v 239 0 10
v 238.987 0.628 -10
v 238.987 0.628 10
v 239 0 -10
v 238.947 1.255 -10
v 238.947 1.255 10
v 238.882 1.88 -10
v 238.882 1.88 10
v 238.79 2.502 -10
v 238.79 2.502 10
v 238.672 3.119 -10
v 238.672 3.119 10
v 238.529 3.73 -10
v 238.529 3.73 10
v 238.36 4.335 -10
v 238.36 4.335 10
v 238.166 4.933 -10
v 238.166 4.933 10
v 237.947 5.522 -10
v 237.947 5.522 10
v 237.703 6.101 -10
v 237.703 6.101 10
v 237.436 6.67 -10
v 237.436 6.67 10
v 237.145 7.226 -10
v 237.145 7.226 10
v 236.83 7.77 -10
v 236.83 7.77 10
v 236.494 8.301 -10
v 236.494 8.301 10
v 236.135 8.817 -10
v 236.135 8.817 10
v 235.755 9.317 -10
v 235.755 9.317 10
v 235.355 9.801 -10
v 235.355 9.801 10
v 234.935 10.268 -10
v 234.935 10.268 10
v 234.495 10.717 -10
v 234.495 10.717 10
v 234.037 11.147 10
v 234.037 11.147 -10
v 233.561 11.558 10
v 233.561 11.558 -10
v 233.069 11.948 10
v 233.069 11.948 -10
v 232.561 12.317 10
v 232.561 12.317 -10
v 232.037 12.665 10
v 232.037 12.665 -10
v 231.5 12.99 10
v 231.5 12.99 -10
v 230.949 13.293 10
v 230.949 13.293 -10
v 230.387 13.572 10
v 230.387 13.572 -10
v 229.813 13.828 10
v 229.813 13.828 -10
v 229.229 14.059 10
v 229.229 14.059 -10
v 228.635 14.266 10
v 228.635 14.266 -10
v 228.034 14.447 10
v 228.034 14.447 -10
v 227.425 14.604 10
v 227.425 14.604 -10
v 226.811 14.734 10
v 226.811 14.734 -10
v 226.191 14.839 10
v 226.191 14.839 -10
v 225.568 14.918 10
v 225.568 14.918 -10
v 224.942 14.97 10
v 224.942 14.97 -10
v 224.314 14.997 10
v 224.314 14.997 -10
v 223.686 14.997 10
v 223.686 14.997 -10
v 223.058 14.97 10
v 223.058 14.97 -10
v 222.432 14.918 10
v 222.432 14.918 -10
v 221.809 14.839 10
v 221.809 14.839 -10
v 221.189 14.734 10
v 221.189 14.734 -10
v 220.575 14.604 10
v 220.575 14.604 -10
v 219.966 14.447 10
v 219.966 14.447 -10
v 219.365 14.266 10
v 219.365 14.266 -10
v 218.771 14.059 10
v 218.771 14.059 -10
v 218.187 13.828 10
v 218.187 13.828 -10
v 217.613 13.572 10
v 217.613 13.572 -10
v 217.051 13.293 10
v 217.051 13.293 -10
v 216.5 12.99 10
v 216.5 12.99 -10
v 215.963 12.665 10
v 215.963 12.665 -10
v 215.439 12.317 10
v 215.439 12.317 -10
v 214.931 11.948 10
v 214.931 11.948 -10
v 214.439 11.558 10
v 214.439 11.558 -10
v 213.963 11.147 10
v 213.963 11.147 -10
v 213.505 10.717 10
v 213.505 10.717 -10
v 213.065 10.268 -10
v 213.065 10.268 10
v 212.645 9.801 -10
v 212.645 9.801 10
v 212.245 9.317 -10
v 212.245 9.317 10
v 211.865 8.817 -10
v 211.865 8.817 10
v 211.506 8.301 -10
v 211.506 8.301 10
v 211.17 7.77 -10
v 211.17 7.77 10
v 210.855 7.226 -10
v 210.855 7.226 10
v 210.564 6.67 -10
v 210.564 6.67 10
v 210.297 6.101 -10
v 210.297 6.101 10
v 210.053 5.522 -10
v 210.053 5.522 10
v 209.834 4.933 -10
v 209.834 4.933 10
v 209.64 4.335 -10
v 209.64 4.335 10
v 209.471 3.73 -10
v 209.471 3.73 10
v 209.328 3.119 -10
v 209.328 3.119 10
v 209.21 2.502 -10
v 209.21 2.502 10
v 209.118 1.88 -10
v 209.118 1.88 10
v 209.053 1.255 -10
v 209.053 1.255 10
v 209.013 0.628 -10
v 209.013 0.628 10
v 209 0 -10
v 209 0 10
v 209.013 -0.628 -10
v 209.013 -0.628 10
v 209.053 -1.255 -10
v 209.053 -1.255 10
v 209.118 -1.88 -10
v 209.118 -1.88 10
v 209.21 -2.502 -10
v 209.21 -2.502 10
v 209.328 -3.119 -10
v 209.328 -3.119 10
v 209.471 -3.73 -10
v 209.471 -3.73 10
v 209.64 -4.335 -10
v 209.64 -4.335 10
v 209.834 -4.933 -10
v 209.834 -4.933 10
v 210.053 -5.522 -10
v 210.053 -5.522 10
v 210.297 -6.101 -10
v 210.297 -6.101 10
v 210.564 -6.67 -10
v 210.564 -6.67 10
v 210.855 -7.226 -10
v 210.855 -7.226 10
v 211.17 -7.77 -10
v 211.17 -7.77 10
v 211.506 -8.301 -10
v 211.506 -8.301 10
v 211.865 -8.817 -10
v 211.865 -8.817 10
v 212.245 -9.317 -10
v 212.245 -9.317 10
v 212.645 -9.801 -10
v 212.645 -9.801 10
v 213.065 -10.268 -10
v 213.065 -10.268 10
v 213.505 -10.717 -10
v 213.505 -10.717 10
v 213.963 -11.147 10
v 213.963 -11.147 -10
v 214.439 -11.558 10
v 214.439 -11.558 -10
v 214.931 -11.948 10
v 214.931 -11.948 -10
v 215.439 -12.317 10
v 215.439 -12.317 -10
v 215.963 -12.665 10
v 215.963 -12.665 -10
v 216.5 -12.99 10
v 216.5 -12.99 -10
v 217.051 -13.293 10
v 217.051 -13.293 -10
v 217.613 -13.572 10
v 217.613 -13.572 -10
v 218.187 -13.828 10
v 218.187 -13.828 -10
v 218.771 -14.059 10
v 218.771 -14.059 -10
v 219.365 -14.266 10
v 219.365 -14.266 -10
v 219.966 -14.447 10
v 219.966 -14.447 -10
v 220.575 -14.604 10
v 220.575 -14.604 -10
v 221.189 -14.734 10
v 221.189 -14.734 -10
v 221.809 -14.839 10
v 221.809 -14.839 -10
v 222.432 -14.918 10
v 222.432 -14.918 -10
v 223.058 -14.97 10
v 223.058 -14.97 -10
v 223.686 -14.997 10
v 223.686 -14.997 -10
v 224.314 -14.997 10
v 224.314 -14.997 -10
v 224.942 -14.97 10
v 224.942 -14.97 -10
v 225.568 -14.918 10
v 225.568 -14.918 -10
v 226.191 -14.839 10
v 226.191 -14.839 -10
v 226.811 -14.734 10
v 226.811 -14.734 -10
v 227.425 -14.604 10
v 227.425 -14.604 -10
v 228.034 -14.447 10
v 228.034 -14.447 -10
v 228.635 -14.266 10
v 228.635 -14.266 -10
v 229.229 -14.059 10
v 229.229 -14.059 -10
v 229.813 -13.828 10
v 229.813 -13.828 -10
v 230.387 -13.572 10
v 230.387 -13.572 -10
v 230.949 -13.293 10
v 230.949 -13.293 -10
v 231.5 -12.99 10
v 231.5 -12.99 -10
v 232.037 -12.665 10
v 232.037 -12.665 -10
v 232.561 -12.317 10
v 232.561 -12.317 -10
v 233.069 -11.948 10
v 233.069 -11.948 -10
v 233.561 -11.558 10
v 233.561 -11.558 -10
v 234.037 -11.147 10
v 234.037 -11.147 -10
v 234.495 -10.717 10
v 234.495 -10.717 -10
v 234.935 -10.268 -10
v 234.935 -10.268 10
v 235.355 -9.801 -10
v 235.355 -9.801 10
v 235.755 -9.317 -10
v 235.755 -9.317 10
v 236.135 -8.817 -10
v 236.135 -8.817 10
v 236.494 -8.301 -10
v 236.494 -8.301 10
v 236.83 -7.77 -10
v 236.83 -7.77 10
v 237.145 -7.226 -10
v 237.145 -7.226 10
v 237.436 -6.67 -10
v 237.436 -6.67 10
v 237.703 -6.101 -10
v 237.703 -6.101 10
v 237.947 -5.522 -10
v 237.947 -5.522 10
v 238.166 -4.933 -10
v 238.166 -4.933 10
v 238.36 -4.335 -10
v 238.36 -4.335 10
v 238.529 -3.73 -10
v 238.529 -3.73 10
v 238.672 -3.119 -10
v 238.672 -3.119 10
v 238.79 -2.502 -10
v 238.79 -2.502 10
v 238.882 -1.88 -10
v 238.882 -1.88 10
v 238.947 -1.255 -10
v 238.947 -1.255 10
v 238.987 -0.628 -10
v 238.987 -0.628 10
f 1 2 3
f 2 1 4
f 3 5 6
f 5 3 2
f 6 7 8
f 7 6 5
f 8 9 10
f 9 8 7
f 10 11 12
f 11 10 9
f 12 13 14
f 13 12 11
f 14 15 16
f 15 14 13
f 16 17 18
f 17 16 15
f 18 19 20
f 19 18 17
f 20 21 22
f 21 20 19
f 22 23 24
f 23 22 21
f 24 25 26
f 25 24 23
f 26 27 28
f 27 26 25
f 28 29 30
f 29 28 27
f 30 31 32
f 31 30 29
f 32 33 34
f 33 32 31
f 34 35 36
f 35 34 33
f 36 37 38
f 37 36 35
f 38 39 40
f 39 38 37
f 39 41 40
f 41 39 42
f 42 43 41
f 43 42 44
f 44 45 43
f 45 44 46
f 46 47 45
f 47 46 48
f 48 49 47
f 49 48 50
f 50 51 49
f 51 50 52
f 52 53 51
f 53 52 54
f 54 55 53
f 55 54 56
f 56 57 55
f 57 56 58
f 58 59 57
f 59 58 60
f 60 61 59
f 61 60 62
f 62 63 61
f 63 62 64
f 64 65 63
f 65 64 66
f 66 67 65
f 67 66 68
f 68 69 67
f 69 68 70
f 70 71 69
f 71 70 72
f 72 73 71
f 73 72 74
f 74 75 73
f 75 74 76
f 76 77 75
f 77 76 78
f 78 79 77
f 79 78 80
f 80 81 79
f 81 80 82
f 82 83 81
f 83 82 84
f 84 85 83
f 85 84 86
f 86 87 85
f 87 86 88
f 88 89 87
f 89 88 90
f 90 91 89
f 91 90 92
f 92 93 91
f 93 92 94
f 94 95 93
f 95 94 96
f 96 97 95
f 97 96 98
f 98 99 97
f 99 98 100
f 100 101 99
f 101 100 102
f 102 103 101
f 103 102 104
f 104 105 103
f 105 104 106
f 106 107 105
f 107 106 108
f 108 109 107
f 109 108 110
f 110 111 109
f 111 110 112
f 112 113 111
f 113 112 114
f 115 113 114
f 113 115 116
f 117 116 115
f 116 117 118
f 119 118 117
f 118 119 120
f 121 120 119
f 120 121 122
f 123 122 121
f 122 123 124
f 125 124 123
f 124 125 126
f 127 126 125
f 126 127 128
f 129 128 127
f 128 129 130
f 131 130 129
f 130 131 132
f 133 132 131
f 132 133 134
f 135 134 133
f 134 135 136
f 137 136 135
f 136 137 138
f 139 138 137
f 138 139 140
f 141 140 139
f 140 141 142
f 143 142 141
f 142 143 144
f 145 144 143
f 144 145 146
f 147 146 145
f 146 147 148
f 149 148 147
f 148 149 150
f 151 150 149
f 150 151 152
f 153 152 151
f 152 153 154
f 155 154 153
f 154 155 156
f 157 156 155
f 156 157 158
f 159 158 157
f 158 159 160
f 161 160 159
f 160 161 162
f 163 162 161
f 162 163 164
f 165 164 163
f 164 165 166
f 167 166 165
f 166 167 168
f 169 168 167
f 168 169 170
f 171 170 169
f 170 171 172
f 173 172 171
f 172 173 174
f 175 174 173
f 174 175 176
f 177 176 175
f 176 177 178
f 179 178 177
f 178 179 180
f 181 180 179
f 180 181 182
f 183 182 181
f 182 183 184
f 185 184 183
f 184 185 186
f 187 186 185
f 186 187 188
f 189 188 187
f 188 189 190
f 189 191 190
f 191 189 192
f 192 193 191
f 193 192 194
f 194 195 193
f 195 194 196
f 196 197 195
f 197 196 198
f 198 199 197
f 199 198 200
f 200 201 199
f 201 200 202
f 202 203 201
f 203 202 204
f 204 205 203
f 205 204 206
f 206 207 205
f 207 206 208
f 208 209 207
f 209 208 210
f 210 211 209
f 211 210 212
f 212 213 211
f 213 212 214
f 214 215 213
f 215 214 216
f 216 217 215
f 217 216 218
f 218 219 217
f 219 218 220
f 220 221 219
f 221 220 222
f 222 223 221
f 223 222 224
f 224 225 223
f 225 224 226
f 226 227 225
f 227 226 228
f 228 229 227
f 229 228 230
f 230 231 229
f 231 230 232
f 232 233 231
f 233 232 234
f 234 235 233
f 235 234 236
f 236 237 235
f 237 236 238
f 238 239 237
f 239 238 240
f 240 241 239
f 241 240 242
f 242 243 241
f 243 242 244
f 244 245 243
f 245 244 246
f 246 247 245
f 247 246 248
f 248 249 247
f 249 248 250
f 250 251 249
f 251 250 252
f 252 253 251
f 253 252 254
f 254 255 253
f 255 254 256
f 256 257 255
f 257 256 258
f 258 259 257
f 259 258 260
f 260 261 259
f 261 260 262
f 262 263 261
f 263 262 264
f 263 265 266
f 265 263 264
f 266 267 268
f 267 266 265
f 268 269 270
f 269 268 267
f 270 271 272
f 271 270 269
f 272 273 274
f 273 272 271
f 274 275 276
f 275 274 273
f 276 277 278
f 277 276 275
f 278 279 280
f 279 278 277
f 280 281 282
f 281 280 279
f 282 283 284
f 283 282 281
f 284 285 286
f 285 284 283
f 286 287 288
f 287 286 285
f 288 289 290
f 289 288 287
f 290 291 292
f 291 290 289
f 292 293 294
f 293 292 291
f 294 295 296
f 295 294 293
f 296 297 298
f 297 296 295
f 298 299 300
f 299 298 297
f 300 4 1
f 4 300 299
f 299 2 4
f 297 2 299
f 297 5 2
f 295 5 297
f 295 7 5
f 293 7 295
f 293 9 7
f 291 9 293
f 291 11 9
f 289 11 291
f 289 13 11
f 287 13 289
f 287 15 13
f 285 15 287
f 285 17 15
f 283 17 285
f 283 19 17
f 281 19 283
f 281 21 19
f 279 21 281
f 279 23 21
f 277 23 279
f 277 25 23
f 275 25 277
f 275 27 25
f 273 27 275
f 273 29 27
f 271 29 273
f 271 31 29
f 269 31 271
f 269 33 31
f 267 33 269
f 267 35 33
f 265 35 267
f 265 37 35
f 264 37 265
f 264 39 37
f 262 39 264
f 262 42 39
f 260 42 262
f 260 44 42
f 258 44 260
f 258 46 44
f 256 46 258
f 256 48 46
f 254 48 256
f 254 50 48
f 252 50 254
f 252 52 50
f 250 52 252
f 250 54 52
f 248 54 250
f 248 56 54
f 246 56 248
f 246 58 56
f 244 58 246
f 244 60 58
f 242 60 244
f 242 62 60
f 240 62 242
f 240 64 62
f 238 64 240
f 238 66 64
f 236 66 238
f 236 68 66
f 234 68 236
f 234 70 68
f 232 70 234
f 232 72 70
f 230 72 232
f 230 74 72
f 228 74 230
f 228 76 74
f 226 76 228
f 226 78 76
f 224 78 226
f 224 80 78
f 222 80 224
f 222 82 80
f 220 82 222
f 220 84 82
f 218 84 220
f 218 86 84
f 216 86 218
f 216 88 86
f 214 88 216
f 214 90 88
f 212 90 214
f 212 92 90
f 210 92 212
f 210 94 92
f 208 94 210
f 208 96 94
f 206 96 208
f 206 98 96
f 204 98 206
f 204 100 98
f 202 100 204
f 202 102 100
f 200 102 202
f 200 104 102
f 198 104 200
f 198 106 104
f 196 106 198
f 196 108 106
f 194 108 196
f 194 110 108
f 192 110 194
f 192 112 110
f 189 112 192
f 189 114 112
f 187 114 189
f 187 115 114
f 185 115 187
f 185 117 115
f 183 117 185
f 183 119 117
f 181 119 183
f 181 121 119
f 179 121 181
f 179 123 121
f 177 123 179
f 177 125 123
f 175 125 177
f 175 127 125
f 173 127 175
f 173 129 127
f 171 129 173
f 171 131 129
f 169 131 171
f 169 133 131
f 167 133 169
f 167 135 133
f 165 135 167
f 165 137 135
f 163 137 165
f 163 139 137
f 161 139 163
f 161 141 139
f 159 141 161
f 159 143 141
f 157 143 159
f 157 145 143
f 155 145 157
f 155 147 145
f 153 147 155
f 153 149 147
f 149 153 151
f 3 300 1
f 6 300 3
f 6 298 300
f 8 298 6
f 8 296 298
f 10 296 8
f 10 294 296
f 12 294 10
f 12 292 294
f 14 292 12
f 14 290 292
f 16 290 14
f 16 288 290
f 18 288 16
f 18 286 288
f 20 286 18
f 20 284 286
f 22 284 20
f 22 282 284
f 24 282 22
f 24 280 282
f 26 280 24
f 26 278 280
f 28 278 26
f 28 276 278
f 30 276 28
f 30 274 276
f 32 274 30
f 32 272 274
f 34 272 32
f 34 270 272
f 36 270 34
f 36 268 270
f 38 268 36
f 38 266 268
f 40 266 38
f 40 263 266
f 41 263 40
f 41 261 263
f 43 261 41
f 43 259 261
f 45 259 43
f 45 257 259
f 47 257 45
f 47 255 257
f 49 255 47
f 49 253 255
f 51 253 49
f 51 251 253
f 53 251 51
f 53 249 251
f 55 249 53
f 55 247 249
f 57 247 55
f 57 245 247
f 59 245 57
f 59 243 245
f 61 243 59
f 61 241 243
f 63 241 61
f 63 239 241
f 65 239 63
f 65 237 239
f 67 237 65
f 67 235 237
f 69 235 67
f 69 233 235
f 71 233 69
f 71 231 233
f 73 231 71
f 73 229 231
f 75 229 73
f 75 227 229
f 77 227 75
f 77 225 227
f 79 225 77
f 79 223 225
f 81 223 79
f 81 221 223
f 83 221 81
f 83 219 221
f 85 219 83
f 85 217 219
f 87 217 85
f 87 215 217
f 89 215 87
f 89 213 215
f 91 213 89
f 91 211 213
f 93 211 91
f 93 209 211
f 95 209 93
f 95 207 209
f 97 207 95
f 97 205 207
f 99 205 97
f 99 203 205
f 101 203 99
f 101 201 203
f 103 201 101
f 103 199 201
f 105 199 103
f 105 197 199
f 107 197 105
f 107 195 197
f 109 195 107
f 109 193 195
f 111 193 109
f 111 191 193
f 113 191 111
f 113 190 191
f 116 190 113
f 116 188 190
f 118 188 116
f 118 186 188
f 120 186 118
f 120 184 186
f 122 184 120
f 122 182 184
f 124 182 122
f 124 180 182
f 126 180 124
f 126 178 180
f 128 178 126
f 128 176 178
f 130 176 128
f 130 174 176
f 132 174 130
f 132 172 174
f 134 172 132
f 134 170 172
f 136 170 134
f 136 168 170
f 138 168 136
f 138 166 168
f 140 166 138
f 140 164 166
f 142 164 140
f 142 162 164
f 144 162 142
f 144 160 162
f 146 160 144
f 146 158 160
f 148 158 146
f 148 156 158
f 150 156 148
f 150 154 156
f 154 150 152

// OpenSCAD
$fn = 150;

translate([224, 0, 0])
rotate([0, 0, 0])
cylinder(20, 15, 15, true);
